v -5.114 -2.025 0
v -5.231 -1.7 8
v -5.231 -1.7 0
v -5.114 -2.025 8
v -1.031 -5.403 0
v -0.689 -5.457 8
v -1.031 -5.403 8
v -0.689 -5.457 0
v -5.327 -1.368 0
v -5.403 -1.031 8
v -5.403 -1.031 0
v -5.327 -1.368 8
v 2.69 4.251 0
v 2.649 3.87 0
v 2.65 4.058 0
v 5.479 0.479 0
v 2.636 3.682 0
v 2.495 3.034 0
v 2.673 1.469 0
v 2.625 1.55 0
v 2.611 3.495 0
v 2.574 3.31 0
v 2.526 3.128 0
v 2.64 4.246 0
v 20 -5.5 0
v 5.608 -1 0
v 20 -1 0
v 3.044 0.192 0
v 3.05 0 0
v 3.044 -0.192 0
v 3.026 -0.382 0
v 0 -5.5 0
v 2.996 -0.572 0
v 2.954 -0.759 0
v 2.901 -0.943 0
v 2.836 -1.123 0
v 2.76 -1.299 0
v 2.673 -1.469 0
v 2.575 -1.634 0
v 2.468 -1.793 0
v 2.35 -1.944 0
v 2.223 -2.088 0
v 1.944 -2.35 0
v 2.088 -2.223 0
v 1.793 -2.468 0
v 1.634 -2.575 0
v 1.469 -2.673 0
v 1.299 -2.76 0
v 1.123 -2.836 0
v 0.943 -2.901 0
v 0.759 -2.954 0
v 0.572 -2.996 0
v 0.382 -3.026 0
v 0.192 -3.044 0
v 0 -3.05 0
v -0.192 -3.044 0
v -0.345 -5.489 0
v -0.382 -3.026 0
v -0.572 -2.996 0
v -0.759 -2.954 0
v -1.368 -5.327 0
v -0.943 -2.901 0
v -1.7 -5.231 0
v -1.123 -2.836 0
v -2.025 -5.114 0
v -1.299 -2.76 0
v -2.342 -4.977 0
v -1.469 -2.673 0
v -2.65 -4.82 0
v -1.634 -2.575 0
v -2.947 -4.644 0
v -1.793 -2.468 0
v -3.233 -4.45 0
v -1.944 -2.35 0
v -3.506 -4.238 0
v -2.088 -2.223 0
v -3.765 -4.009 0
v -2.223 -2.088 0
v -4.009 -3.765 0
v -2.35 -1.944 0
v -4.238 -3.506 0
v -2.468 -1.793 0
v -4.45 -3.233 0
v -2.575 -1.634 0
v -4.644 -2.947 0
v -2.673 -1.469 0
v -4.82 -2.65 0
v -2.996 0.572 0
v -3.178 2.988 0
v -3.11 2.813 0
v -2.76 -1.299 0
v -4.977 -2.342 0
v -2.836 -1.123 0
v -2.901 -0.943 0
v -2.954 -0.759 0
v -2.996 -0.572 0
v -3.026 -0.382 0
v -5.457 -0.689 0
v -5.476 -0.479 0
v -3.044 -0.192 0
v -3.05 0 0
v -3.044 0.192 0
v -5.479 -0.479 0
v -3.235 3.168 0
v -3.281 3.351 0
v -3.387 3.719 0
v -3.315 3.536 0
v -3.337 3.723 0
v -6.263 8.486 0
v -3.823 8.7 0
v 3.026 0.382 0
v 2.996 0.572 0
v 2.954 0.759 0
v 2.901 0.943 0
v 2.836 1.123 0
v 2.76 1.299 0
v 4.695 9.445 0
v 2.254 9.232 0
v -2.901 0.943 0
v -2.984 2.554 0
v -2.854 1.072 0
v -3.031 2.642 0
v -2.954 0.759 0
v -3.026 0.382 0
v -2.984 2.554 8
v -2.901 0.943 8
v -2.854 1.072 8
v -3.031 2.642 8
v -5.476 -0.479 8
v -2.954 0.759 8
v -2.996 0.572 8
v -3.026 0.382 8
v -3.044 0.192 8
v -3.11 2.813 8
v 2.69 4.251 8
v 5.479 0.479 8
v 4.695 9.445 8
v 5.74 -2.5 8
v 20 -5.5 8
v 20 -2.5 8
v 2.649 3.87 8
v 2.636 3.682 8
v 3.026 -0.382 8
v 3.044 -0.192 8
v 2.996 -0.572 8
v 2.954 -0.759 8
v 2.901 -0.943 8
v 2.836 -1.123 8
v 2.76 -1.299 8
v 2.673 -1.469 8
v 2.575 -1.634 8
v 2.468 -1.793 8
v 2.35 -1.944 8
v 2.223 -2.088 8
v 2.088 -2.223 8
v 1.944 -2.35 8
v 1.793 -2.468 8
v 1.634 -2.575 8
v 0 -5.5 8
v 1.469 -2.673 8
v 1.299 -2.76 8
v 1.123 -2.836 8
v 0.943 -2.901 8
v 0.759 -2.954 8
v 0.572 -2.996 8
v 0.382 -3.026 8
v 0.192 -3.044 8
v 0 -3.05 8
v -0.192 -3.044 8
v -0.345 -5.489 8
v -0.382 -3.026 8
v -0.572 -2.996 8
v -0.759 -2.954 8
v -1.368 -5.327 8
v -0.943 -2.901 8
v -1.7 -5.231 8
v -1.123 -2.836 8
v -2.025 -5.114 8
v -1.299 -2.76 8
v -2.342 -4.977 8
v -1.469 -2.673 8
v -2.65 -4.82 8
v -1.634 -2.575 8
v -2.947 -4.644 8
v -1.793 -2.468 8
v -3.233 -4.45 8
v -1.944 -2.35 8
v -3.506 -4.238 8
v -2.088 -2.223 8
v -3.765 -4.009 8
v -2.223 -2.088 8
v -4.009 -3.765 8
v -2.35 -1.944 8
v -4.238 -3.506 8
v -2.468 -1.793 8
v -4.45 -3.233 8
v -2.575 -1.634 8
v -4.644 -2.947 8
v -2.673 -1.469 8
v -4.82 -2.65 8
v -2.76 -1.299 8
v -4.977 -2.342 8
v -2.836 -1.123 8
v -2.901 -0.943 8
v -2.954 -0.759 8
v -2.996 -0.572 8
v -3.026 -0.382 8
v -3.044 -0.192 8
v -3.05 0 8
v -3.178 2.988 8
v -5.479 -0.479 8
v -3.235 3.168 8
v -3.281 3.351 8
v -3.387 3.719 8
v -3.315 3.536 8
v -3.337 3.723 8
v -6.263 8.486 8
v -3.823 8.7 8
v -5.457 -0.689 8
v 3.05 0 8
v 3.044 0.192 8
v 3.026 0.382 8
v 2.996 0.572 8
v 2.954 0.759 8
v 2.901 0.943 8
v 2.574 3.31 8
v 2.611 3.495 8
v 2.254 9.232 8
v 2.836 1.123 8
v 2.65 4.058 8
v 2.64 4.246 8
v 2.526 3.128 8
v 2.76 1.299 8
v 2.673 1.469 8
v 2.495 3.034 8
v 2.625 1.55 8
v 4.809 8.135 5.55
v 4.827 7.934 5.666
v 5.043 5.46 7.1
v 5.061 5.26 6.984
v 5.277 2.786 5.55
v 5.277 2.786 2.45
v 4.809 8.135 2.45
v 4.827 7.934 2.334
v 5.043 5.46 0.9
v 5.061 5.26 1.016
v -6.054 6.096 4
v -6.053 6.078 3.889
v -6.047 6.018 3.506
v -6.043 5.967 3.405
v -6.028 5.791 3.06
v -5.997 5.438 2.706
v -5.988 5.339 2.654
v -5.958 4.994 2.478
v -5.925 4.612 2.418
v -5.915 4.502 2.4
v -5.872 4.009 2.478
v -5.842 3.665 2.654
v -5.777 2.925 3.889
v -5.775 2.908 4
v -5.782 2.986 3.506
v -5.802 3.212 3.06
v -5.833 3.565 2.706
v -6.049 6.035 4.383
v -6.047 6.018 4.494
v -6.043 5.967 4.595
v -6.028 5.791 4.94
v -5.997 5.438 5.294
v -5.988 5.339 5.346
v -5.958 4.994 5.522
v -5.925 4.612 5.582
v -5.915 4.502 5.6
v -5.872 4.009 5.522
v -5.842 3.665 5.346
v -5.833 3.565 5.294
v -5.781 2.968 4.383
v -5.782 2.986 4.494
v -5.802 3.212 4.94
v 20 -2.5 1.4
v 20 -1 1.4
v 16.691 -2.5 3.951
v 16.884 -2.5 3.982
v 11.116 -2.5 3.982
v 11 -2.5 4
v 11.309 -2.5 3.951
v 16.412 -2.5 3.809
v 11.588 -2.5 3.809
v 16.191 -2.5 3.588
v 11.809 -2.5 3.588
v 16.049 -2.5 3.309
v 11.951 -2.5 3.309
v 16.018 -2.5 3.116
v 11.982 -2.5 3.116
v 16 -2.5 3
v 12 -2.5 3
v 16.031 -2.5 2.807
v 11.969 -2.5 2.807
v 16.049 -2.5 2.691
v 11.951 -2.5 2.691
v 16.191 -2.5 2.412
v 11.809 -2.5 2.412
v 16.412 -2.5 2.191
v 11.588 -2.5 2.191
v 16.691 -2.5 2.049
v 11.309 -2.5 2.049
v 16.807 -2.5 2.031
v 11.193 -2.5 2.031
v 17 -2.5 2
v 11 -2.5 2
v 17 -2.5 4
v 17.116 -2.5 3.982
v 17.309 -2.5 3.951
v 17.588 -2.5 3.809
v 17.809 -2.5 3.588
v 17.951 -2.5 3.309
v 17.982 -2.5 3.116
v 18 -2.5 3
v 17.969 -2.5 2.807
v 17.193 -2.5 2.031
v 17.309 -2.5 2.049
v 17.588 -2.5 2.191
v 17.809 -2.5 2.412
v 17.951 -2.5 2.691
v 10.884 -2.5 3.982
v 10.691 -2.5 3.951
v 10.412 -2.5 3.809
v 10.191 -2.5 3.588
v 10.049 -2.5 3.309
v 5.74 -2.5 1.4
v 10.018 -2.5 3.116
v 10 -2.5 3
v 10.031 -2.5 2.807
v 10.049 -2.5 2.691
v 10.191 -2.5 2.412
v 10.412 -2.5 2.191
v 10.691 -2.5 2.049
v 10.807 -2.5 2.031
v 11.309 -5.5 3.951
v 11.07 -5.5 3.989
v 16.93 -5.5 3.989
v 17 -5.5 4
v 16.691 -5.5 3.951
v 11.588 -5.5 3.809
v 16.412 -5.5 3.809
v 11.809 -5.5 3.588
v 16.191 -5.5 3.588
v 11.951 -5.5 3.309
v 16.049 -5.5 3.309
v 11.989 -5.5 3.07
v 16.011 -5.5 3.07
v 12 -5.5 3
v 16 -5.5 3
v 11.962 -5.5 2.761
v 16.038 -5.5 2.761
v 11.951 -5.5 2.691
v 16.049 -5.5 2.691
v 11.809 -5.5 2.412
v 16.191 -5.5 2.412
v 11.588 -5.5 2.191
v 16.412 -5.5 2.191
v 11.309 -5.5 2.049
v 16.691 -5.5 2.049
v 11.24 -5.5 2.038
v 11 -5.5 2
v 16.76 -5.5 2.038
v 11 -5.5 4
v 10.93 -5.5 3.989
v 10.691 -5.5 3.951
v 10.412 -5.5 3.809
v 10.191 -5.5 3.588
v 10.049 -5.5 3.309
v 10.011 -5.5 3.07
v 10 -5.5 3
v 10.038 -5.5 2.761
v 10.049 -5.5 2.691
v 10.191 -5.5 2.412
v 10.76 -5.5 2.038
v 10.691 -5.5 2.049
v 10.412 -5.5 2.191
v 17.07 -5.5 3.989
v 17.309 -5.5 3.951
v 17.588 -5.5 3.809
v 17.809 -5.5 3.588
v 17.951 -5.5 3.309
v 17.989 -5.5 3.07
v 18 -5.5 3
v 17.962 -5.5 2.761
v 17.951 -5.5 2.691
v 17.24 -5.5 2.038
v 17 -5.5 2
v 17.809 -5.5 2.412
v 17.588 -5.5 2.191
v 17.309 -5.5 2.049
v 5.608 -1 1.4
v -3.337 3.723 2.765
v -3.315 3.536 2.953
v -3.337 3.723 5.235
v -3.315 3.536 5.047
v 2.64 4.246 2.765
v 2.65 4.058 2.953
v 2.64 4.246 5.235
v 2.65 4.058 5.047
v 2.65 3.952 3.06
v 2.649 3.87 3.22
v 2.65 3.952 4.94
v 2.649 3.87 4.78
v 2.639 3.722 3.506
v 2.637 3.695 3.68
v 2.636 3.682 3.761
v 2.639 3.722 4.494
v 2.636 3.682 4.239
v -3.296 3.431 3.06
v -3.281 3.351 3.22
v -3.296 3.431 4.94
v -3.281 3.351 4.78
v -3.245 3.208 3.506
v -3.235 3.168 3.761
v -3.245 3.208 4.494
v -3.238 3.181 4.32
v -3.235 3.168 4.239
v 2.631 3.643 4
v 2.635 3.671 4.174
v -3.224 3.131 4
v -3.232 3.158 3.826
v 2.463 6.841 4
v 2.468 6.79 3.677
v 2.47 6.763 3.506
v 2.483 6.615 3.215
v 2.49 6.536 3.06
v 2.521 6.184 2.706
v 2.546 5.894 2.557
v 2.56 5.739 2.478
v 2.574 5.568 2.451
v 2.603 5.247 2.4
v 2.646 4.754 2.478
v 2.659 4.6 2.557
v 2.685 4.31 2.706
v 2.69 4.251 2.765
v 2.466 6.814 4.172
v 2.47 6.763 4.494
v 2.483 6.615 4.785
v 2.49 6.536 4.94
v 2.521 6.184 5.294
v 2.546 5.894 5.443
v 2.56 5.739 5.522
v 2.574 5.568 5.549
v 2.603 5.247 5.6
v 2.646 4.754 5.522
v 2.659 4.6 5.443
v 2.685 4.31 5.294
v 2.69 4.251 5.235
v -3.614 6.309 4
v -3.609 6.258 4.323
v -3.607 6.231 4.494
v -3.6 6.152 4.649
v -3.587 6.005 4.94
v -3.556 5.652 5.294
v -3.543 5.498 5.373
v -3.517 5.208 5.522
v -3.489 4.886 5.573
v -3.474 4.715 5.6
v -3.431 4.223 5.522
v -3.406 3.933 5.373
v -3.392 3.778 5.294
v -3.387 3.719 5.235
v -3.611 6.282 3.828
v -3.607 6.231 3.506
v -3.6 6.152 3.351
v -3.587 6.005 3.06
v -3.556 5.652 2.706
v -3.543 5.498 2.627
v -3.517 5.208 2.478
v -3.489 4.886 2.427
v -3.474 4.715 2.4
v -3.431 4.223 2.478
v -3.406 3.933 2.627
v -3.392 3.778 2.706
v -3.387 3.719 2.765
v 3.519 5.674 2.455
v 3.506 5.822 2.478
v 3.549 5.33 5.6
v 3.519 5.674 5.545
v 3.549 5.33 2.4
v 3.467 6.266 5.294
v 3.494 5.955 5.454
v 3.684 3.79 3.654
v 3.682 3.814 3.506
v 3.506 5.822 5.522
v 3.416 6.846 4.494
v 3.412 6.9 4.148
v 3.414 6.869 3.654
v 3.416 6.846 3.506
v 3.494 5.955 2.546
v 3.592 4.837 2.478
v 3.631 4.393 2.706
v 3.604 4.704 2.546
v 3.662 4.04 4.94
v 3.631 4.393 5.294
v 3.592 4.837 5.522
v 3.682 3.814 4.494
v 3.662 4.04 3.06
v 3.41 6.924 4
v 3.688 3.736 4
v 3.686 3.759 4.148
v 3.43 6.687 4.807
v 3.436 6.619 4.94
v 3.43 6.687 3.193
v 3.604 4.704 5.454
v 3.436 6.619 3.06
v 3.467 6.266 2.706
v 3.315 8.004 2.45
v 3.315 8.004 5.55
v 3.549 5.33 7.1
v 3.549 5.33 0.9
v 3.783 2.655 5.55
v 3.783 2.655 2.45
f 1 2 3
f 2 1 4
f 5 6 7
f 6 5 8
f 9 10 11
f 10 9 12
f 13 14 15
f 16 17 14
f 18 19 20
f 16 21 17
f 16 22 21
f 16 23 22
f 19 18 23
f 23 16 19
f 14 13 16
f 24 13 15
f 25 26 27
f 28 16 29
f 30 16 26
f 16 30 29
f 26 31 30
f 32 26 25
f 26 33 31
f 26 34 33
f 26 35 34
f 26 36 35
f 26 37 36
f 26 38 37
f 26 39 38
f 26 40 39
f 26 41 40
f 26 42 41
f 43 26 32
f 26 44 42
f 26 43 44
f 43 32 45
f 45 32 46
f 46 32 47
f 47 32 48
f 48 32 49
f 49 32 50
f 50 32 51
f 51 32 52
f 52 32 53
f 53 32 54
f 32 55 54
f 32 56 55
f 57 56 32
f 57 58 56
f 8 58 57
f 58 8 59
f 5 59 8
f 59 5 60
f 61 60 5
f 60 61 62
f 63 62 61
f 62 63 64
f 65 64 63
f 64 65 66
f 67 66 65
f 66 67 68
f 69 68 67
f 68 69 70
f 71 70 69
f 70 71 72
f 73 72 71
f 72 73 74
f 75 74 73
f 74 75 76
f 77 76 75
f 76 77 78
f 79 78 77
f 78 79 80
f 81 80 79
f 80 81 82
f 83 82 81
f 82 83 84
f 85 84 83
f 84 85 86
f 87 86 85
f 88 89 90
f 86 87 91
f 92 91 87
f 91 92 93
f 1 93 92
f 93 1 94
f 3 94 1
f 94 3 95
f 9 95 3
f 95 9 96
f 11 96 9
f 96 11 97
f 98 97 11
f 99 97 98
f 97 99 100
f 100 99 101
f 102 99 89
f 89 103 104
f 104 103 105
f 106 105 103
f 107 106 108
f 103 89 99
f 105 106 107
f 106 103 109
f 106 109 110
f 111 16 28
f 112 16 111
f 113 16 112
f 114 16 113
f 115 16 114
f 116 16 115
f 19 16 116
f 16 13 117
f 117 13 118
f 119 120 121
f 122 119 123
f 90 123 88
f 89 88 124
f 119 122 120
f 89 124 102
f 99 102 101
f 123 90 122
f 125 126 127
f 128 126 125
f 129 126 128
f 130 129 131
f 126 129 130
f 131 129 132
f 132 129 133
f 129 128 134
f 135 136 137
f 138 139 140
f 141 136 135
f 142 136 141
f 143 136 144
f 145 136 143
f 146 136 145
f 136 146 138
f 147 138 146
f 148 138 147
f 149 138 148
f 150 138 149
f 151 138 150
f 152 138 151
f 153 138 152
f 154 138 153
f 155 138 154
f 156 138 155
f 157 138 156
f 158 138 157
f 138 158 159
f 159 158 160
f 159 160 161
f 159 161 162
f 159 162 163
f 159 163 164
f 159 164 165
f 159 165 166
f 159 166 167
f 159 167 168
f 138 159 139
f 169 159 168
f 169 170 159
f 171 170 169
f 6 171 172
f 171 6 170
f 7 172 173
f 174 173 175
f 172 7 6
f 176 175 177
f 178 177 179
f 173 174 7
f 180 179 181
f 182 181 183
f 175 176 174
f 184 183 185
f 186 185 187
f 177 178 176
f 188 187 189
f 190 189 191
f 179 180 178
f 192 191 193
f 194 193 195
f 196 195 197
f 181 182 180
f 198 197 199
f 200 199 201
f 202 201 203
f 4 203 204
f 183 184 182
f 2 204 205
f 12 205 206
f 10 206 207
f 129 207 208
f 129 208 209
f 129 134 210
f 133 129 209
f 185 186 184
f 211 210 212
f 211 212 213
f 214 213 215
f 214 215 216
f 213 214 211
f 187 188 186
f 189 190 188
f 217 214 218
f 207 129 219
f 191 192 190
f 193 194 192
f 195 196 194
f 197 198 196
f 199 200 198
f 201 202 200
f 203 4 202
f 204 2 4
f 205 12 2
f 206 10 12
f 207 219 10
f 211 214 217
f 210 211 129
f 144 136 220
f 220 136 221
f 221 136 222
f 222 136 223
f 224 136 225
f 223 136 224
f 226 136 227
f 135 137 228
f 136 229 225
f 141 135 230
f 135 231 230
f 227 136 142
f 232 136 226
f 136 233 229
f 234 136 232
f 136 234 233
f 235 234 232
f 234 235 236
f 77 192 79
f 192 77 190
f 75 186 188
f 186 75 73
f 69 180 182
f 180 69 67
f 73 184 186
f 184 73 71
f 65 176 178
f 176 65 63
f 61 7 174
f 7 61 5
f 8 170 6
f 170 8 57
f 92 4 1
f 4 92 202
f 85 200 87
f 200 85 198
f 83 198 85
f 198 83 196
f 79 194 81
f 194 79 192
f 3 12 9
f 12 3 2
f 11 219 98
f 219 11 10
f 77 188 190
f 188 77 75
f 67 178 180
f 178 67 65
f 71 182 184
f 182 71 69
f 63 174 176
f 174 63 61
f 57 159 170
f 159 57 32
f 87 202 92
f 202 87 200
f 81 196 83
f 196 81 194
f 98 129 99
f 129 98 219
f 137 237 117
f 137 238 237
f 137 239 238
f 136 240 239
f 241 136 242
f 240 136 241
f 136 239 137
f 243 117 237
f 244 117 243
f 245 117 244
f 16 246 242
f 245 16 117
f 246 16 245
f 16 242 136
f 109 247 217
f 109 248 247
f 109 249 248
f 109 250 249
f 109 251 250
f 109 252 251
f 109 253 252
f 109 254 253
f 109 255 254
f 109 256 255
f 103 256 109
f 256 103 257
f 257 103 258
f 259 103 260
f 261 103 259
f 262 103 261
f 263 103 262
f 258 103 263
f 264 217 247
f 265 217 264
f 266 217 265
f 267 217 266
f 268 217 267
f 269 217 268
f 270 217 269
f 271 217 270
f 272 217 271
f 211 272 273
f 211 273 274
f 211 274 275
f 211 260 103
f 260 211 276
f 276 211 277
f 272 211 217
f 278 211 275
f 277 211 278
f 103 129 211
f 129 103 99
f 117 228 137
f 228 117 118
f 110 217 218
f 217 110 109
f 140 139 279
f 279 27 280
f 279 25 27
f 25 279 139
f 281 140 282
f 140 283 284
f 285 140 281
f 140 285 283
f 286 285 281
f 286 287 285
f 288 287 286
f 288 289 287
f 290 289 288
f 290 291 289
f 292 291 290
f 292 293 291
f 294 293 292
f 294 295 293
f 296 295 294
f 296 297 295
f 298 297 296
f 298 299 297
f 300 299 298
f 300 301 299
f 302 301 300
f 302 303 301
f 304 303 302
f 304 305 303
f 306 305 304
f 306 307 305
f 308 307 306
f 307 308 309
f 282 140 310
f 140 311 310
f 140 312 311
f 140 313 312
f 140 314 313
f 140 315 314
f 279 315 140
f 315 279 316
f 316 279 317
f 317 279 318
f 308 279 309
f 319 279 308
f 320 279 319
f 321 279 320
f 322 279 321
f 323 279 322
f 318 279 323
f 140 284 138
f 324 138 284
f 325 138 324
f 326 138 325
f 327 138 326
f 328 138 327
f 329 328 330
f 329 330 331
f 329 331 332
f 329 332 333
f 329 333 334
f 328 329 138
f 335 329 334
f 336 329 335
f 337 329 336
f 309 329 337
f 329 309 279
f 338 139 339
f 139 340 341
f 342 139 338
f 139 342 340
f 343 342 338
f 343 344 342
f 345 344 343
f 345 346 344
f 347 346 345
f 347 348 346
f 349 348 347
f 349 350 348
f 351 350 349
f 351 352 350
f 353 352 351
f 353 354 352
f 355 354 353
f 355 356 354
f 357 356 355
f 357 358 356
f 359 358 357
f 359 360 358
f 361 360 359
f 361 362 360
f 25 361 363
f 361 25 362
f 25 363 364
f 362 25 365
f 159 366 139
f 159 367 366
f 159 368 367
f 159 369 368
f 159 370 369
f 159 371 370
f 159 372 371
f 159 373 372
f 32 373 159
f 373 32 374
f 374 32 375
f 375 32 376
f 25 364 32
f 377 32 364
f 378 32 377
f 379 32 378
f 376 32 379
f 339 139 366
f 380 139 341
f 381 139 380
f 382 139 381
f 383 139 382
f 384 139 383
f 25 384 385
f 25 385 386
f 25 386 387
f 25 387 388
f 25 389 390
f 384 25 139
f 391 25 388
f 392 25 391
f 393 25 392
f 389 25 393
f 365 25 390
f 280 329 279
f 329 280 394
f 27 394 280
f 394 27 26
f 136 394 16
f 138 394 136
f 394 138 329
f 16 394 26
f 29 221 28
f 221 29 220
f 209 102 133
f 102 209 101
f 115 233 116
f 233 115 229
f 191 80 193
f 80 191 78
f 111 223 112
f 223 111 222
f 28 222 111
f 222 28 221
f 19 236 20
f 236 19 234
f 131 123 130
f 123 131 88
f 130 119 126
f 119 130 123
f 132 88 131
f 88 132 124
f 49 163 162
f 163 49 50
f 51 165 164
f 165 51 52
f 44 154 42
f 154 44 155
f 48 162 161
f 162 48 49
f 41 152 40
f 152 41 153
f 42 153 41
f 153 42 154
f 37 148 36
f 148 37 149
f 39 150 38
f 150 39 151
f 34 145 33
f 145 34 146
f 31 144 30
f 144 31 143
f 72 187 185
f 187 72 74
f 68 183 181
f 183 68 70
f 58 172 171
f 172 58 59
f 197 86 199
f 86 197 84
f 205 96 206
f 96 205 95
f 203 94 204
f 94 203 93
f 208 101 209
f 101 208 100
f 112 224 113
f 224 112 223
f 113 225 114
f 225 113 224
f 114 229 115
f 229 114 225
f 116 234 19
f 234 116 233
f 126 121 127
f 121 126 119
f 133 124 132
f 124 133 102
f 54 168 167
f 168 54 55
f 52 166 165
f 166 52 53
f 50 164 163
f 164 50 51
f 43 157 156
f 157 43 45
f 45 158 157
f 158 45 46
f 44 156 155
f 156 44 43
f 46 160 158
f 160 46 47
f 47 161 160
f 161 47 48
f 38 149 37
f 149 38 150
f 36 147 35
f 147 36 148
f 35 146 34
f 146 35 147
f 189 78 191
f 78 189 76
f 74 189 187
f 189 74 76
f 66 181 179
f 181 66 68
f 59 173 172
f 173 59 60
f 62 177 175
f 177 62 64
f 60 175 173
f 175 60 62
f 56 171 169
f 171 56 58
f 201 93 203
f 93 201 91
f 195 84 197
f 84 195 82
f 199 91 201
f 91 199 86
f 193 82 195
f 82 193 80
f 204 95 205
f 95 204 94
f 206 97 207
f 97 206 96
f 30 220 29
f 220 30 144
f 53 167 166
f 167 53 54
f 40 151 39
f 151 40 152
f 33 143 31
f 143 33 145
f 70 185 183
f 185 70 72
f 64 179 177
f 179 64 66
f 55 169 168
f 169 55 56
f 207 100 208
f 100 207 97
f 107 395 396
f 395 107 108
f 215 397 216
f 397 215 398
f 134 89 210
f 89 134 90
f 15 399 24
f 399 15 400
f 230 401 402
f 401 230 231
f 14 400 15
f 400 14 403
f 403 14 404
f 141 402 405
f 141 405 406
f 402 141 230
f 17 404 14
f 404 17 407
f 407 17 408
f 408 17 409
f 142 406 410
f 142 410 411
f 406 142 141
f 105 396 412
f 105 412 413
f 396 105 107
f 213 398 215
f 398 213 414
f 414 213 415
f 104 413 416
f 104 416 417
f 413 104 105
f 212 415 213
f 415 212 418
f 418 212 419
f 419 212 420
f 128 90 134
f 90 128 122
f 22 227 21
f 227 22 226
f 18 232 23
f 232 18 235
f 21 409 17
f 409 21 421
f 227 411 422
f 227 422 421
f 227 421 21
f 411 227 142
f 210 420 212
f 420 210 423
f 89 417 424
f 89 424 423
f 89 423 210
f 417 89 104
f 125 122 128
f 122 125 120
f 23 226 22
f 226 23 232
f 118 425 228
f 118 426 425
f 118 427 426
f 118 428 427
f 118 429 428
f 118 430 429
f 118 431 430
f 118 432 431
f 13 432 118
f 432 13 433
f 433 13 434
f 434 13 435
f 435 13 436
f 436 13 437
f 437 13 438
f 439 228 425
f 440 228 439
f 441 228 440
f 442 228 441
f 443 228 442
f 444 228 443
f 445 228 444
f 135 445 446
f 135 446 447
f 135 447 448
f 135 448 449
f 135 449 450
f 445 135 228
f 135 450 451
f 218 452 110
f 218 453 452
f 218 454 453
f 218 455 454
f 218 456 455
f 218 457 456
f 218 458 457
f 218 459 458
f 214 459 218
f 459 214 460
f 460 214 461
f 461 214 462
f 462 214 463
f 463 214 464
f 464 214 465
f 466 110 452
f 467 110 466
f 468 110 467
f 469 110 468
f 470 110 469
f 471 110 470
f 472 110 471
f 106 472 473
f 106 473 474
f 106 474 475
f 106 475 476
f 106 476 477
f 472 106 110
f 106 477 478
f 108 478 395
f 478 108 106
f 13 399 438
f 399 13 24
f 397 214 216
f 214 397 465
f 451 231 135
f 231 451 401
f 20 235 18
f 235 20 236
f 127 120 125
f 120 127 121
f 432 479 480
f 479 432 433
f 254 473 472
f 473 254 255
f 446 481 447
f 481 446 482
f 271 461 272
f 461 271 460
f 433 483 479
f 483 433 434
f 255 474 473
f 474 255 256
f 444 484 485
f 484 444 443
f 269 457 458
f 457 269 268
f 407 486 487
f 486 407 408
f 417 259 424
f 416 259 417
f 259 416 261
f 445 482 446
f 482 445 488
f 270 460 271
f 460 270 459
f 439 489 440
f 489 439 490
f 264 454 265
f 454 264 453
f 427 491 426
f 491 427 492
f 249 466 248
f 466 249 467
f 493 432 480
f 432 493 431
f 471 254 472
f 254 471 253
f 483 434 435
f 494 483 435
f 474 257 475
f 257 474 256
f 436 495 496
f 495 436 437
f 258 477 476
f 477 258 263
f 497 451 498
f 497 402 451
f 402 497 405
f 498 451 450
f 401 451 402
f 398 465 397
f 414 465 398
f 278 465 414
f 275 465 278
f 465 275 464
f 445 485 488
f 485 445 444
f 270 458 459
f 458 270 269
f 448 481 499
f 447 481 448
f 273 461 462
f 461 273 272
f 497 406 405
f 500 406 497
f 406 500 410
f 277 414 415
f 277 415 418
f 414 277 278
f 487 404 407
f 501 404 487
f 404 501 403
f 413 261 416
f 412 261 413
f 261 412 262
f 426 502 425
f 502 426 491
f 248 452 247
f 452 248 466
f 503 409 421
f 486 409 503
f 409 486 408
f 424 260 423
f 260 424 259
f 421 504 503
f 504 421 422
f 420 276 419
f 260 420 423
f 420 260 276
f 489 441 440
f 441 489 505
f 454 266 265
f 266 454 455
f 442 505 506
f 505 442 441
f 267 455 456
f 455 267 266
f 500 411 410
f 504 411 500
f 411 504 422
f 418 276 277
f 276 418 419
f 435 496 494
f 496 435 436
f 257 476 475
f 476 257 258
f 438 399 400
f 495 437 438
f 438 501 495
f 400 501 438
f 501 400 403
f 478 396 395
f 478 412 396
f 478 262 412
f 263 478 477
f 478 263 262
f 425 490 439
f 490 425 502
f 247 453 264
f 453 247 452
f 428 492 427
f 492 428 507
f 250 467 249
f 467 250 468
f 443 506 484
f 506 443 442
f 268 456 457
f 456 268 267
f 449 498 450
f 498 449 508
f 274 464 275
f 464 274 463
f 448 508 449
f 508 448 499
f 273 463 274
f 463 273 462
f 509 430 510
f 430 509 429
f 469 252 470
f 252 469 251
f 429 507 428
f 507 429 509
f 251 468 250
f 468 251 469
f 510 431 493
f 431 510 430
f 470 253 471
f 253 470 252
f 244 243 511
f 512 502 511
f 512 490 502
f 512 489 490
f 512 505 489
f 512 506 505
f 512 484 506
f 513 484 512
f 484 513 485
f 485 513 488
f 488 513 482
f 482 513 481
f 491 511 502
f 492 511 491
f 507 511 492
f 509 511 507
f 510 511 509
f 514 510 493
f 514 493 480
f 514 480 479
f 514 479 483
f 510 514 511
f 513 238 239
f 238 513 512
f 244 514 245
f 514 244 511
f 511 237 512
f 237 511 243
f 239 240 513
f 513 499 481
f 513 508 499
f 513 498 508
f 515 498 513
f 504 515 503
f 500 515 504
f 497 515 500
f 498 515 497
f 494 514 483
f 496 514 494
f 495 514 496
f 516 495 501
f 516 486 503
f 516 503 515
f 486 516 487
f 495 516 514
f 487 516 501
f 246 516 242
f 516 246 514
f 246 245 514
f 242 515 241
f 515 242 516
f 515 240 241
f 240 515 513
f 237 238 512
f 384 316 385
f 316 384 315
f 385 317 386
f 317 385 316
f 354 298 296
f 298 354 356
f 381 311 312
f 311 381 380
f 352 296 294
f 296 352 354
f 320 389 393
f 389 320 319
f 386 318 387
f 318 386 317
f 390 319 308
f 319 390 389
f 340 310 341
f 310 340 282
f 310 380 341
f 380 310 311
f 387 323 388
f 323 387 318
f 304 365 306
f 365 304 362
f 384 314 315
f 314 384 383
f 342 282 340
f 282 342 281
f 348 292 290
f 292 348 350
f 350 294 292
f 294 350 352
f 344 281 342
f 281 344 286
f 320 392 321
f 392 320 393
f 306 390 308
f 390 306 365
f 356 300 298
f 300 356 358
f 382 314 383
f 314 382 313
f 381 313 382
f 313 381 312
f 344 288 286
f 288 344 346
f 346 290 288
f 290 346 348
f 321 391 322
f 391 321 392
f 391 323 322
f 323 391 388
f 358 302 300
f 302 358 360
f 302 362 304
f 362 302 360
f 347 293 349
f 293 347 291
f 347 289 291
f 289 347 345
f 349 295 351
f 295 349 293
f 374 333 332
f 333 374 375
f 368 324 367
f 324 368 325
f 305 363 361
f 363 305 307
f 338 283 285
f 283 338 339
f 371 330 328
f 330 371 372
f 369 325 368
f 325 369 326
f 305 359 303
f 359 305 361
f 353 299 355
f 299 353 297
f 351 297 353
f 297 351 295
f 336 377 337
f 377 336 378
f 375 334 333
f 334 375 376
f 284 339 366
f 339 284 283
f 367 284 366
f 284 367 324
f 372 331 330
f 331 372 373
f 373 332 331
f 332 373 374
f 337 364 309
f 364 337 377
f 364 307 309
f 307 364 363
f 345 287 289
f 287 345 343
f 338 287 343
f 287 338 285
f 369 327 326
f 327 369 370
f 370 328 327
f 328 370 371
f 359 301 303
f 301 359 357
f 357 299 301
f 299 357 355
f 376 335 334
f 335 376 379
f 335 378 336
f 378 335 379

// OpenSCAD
rotacion = 5;
difference()
{
	union()
	{
		cylinder(d = 11, h = 8,$fn= 100);
		rotate([0, 0, rotacion])translate([0, 4.5, 8/2])cube([11,9,8],center = true);
		translate([0, -11/2, 0])cube([20,3,8]);
		translate([0, -11/2, 0])cube([20,4.5,1.4]);
		rotate([0, 0, rotacion])translate([0, -11/2, 0])cube([5.5,8,8]);
	}
	union()
	{
		cylinder(d = 6.1, h = 50,$fn= 100, center = true);
		rotate([0, 0, rotacion])translate([0, 4, 0])cylinder(d = 6, h = 50,$fn= 100, center = true);
		rotate([0, 0, rotacion])translate([0, 14, 0])cube([6.1,20,20],center = true);
		rotate([0, 0, rotacion])translate([0, 10, 15/2])cube([5.5,20,20],center = true);
		rotate([0, 0, rotacion])translate([0, 5, 4])rotate([0, 90, 0])cylinder(d = 3.2, h = 20, center = true, $fn = 20);
		
		
		rotate([0, 0, rotacion])translate([4, 5, 4])rotate([0, 90, 0])cylinder(d = 6.2, h = 20, $fn = 6);
		
		translate([17, 0, 3])rotate([90, 0, 0])cylinder(d = 2, h = 20, center = true, $fn = 20);
		translate([11, 0, 3])rotate([90, 0, 0])cylinder(d = 2, h = 20, center = true, $fn = 20);
	}	
}



//	 ([])
